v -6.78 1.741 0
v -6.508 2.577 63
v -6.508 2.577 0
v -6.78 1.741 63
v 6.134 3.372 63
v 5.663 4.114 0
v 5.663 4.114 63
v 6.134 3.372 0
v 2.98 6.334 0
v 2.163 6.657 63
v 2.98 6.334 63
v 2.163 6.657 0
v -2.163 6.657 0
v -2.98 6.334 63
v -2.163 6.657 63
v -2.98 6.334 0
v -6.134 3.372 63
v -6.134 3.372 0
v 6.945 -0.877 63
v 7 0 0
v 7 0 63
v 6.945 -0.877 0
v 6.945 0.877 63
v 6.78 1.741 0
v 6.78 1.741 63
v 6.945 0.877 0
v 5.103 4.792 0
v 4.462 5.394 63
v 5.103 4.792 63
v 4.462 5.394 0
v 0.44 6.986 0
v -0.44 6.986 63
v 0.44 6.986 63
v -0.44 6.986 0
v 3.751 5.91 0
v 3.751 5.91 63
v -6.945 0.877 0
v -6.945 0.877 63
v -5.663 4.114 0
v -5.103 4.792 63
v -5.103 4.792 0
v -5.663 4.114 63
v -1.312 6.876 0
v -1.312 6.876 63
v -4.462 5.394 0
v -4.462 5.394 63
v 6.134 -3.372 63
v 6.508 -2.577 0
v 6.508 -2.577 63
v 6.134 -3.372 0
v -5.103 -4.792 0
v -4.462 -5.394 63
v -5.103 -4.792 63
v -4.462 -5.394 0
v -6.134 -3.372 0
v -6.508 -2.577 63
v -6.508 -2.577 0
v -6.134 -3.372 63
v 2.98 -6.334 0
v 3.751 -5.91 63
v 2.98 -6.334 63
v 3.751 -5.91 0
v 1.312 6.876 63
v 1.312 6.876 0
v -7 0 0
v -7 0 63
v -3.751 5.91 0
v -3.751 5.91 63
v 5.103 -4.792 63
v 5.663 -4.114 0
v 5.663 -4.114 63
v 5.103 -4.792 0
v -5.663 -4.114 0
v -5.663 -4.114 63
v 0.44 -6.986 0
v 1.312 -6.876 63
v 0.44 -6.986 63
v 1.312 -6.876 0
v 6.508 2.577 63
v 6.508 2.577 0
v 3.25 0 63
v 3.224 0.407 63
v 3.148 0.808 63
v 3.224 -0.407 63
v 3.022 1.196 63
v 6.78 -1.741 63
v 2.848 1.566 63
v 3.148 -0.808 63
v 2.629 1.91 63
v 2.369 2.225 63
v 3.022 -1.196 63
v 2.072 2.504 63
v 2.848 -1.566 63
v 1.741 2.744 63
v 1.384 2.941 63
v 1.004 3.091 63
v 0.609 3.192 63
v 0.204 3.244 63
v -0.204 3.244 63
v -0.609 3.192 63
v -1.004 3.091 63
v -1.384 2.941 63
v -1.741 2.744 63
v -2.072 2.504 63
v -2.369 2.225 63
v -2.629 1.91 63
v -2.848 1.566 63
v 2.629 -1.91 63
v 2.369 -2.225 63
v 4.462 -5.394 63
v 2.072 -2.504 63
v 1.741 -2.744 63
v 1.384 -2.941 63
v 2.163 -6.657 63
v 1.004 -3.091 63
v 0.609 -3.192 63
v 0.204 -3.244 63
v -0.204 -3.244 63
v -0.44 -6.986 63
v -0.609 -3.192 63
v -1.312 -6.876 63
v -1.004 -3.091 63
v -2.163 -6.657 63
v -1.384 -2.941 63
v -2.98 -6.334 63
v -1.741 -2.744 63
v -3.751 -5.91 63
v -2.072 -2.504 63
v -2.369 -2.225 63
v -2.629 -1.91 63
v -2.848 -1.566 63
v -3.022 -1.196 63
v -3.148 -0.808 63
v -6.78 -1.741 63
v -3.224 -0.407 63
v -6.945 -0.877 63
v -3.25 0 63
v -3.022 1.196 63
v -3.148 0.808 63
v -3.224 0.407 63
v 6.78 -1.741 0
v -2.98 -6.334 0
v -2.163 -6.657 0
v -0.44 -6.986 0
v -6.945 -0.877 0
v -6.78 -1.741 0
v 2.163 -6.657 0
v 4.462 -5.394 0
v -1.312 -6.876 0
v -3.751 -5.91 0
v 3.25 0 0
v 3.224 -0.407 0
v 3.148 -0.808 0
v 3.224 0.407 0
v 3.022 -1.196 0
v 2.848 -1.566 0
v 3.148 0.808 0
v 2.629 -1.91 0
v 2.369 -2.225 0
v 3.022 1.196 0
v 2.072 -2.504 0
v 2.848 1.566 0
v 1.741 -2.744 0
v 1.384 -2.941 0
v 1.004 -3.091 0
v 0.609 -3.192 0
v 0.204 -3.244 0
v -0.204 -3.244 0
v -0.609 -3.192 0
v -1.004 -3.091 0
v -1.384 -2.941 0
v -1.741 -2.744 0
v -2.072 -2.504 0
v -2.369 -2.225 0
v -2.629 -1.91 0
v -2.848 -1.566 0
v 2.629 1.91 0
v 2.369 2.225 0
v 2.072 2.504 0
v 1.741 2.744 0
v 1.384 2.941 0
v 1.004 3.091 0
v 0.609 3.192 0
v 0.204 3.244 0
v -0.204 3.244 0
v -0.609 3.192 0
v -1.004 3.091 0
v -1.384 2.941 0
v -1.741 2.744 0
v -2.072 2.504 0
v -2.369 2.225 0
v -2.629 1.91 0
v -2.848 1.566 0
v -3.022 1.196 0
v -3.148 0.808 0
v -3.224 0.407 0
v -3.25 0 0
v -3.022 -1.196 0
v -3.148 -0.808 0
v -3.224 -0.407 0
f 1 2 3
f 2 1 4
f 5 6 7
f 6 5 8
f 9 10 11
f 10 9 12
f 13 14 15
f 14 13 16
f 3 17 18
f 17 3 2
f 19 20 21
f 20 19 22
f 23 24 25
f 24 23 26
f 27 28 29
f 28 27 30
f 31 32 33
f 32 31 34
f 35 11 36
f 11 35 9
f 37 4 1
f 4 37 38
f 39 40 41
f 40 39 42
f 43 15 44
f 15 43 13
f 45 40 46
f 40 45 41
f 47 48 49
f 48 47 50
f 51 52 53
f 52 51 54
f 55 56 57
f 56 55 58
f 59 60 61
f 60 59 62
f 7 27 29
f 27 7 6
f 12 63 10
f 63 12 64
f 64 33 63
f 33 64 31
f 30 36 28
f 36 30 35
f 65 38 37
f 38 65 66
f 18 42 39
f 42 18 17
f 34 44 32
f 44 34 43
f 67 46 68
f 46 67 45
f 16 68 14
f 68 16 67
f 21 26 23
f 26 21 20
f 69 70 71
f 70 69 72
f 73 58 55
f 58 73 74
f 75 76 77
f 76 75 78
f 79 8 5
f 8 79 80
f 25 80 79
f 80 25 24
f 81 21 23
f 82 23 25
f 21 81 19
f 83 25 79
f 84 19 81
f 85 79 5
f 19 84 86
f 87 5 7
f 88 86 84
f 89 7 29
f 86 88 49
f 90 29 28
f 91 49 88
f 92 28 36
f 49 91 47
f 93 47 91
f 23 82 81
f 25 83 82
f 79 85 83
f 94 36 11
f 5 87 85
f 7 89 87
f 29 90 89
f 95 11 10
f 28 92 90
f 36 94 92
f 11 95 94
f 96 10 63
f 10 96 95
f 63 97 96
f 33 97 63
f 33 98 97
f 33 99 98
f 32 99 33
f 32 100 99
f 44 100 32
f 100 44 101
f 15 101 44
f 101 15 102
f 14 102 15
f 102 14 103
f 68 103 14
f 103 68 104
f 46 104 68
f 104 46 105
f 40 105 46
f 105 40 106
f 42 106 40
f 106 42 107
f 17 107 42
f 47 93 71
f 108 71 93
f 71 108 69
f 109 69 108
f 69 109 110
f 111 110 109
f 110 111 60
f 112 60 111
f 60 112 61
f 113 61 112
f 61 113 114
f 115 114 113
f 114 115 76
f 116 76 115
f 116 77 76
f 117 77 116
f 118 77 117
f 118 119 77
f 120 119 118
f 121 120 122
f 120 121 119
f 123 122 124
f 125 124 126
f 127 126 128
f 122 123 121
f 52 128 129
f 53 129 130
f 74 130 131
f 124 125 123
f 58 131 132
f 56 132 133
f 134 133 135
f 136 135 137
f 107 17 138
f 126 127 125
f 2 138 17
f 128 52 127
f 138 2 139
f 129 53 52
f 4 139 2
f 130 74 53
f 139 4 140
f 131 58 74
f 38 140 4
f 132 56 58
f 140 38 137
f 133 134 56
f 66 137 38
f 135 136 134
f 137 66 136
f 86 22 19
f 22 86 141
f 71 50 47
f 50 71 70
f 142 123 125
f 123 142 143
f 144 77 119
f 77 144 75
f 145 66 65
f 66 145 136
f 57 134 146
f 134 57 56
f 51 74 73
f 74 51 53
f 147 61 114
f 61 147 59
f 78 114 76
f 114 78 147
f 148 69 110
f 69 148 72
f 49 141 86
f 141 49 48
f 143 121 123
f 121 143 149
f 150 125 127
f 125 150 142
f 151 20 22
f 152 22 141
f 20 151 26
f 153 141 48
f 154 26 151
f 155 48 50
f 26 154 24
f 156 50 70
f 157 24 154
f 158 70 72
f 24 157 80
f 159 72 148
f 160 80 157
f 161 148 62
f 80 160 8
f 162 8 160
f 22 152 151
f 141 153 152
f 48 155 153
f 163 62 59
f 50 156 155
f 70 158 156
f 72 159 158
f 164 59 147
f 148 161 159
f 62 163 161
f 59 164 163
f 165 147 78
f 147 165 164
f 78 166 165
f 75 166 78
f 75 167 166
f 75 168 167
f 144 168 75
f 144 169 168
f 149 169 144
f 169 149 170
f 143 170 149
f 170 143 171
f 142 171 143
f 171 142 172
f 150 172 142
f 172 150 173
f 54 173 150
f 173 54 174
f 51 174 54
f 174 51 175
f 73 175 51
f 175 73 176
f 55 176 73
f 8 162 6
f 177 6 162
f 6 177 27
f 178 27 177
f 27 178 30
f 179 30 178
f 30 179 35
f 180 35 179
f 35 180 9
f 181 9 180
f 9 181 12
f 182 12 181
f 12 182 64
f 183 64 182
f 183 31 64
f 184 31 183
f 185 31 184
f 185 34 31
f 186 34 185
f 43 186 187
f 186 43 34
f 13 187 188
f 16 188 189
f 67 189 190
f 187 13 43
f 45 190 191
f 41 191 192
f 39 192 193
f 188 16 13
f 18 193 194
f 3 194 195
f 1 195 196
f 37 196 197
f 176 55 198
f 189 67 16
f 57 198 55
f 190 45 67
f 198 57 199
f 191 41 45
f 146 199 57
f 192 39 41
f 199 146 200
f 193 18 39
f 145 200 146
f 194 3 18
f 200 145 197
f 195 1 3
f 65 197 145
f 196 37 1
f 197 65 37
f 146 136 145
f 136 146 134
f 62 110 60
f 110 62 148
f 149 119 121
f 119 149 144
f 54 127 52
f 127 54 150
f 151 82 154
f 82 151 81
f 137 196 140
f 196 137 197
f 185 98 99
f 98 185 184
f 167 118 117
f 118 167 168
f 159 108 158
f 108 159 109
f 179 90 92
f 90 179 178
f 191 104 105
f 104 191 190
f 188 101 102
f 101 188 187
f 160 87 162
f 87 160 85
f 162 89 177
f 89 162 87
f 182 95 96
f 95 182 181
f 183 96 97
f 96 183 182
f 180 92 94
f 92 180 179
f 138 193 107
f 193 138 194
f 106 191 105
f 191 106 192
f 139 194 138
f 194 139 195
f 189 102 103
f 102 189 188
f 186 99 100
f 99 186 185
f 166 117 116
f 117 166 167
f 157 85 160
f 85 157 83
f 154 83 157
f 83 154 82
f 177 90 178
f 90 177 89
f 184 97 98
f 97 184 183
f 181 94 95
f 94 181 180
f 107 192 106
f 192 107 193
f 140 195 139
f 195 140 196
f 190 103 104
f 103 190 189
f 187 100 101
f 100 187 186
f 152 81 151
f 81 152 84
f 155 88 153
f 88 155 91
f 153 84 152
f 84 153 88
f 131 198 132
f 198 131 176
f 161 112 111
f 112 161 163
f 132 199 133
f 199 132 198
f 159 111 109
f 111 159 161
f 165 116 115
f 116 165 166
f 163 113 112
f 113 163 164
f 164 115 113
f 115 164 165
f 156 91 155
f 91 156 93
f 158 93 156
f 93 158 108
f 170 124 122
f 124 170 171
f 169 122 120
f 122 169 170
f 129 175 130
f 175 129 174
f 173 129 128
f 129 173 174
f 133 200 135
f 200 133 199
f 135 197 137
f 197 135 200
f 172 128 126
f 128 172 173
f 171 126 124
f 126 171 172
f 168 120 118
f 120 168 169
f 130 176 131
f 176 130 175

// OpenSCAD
$fn = 50;


difference() {
	union() {
		cylinder(h = 63, r = 7.0000000000);
	}
	union() {
		translate(v = [0, 0, -100]) {
			cylinder(h = 200, r = 3.2500000000);
		}
	}
}
